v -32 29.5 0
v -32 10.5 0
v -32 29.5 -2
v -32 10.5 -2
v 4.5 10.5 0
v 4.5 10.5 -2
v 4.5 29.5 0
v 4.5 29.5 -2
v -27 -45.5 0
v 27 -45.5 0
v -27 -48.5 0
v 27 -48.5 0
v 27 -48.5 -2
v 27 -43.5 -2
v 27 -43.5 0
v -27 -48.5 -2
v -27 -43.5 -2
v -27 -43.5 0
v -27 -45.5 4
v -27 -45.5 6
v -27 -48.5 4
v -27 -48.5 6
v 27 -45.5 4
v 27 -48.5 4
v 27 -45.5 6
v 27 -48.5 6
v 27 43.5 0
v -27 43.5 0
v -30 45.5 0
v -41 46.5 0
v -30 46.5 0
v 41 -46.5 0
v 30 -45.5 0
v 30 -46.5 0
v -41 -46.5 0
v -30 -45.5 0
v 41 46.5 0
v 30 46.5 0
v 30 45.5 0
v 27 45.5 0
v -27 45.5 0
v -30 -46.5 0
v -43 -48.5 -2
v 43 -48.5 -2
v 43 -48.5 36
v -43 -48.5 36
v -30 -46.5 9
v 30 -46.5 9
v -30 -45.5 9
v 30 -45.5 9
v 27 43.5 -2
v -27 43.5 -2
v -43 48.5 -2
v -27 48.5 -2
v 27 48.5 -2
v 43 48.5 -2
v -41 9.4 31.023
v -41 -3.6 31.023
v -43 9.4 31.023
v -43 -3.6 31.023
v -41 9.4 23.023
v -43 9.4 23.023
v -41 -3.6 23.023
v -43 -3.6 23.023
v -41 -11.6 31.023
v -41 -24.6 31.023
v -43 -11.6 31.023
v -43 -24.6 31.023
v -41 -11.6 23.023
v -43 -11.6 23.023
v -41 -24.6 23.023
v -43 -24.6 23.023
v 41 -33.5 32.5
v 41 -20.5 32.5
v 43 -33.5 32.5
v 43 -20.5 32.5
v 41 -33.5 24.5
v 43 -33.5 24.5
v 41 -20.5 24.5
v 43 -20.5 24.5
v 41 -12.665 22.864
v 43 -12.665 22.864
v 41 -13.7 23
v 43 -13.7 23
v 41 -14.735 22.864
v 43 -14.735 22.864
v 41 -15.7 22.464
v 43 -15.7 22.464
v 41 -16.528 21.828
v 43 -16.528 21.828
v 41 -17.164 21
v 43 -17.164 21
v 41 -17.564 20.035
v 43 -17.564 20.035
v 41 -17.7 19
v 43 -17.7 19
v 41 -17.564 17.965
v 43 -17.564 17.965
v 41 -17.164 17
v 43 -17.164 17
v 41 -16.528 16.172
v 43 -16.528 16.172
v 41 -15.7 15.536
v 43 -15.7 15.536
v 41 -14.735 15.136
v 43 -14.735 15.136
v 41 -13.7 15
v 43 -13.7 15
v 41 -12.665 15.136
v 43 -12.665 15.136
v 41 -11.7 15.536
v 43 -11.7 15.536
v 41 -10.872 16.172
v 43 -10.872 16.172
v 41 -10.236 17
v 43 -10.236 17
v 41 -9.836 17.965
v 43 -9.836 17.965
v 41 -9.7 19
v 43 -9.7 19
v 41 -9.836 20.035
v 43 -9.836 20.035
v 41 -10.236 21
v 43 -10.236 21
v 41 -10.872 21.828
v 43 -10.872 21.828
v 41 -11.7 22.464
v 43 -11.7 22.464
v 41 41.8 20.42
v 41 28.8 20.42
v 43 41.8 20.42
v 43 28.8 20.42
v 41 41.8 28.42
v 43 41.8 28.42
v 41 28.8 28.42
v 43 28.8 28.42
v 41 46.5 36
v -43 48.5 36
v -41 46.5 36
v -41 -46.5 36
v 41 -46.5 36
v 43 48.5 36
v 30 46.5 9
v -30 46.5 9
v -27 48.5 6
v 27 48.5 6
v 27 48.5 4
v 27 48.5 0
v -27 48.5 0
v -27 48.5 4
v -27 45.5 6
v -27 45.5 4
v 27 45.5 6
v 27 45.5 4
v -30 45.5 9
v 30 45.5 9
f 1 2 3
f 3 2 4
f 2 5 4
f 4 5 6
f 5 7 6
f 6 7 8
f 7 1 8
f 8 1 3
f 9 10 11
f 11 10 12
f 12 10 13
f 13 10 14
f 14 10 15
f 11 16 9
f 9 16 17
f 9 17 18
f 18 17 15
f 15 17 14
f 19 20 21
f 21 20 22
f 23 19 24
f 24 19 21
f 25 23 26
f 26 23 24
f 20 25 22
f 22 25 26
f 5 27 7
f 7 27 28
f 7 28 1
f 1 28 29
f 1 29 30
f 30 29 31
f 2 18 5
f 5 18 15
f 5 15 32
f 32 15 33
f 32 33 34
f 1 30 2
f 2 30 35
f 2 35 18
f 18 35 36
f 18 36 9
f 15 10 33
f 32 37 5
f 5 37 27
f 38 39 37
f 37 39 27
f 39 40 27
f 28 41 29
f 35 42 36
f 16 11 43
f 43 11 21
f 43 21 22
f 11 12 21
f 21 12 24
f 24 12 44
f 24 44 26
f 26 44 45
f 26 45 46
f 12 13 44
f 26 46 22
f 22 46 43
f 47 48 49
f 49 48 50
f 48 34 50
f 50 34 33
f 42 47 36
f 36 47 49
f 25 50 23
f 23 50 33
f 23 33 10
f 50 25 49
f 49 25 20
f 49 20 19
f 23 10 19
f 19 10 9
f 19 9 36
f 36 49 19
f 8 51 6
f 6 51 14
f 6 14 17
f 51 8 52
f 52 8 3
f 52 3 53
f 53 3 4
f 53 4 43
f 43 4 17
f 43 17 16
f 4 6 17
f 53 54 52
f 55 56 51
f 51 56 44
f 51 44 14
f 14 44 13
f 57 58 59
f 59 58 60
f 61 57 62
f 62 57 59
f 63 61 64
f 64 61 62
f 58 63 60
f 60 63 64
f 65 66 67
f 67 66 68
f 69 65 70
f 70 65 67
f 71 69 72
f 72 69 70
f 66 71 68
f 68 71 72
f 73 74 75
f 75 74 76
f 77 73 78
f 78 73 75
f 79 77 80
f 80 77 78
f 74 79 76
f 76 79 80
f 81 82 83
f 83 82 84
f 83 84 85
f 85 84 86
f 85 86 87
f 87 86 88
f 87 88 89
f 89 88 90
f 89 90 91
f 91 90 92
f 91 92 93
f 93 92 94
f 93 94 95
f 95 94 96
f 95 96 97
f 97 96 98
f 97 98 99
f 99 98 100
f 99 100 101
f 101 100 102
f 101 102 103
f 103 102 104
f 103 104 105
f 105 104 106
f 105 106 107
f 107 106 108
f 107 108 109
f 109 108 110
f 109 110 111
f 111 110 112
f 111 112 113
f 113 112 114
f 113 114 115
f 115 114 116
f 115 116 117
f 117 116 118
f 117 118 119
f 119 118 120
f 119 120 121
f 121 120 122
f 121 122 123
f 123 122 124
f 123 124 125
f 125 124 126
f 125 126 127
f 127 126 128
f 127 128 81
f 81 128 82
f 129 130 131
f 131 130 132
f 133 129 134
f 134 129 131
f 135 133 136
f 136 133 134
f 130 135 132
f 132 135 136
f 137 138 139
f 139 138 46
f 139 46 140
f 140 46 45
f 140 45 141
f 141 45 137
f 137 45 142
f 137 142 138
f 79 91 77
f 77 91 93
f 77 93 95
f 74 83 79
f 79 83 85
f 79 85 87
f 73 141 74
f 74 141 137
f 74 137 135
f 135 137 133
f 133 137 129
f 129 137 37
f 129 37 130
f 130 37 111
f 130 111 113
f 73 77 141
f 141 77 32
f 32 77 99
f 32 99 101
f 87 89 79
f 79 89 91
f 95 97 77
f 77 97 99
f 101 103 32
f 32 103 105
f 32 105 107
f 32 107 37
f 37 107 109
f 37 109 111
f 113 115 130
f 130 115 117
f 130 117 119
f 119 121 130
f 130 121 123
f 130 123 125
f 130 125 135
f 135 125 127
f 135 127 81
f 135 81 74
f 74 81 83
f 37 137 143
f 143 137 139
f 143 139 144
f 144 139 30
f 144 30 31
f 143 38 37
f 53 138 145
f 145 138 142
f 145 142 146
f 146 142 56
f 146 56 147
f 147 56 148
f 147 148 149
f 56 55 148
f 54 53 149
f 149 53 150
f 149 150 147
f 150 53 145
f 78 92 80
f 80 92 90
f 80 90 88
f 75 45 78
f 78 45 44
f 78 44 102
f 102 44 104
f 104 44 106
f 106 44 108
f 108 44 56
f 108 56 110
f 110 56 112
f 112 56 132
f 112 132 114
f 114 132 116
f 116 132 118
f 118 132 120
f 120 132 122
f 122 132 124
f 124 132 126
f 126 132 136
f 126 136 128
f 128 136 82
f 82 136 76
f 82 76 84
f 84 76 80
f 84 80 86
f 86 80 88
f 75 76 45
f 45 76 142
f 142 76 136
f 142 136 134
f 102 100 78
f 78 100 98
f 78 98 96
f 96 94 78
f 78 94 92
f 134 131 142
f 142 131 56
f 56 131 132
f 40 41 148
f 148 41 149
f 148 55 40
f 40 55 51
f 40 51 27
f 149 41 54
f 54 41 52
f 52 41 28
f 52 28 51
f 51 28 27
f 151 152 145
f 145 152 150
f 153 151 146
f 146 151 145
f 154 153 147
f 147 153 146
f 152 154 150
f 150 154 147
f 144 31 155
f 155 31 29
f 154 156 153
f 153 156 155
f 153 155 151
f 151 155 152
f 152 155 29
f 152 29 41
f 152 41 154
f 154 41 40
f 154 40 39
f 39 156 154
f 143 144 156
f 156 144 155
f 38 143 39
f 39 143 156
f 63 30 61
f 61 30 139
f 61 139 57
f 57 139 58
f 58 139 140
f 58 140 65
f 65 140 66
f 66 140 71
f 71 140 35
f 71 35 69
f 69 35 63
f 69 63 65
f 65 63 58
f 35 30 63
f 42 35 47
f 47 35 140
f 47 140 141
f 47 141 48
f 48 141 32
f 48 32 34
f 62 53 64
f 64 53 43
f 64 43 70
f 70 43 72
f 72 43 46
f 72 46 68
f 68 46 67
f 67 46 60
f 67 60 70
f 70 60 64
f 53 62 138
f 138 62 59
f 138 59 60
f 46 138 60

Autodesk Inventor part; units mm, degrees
ref_plane "YZ Plane" through (0, 0, 0) normal (1, 0, 0) x (0, 1, 0)
ref_plane "XZ Plane" through (0, 0, 0) normal (0, 1, 0) x (-1, 0, 0)
ref_plane "XY Plane" through (0, 0, 0) normal (0, 0, 1) x (1, 0, 0)
sketch "Sketch1" plane through (0, 0, 0) normal (0, 0, 1) x (1, 0, 0)
  line L0 (-41, -46.5) -> (41, -46.5)
  line L1 (41, -46.5) -> (41, 46.5)
  line L2 (41, 46.5) -> (-41, 46.5)
  line L3 (-41, 46.5) -> (-41, -46.5)
  line L4 (-41, -46.5) -> (41, 46.5) construction
  line L5 (41, -46.5) -> (-41, 46.5) construction
  line L6 (43, 48.5) -> (43, -48.5)
  line L7 (43, -48.5) -> (-43, -48.5)
  line L8 (-43, -48.5) -> (-43, 48.5)
  line L9 (-43, 48.5) -> (43, 48.5)
  point P0 (0, 0)
  dimension "d0" = 93
  dimension "d1" = 82
  dimension "d2" = 2
extrude "Extrusion1" add sketch "Sketch1" along normal blind 40
sketch "Sketch2" plane through (0, 0, 0) normal (0, 0, -1) x (-1, 0, 0)
  line L0 (41, 46.5) -> (41, -46.5) projected
  line L1 (41, -46.5) -> (-41, -46.5) projected
  line L2 (-41, -46.5) -> (-41, 46.5) projected
  line L3 (-41, 46.5) -> (41, 46.5) projected
  line L4 (-43, 48.5) -> (-43, -48.5) projected
  line L5 (-43, -48.5) -> (43, -48.5) projected
  line L6 (43, -48.5) -> (43, 48.5) projected
  line L7 (43, 48.5) -> (-43, 48.5) projected
  point P0 (0, 0)
extrude "Extrusion2" add sketch "Sketch2" along normal blind 2 contours L0 L1 L2 L3 | L7 L6 L5 L4
sketch "Sketch4" plane through (0, 0, -2) normal (0, 0, -1) x (-1, 0, 0)
  line L0 (41, 46.5) -> (41, -46.5) projected
  line L1 (-41, 46.5) -> (41, 46.5) projected
  line L2 (-41, -46.5) -> (-41, 46.5) projected
  line L3 (41, -46.5) -> (-41, -46.5) projected
  line L4 (0, 46.5) -> (0, 31.5)
  line L5 (41, -46.5) -> (41, 46.5) projected
  line L6 (41, 31.5) -> (37, 31.5)
  line L7 (-41, 46.5) -> (-41, -46.5) projected
  line L8 (-41, 16) -> (-7, 16)
  line L9 (23, -46.5) -> (23, 3.5)
  line L10 (37, 31.5) -> (-10, 31.5)
  line L11 (-10, 31.5) -> (-10, 3.5)
  line L12 (-10, 3.5) -> (37, 3.5)
  line L13 (37, 3.5) -> (37, 31.5)
  point P0 (0, 0)
  dimension "d11" = 15
  dimension "d12" = 4
  dimension "d13" = 34
  dimension "d14" = 50
extrude "Extrusion4" cut sketch "Sketch4" against normal blind 2 contours L13 L12 L11 L10
sketch "Sketch8" plane through (-43, 48.5, 40) normal (0, 1, 0) x (1, 0, 0)
  line L0 (0, 0) -> (0, 42) projected
  line L1 (86, 0) -> (0, 0) projected
  line L2 (86, 42) -> (86, 0) projected
  line L3 (0, 42) -> (86, 42) projected
  line L4 (6, 42) -> (53, 42) projected
  line L5 (43, 42) -> (16, 42)
  line L6 (43, 42) -> (43, 40)
  line L7 (43, 40) -> (43, 36)
  line L8 (43, 36) -> (43, 34)
  line L9 (84, 40) -> (2, 40) projected
  line L10 (16, 42) -> (70, 42)
  line L11 (70, 42) -> (70, 40)
  line L12 (70, 40) -> (16, 40)
  line L13 (16, 40) -> (16, 42)
  line L14 (16, 34) -> (70, 34)
  line L15 (70, 34) -> (70, 36)
  line L16 (70, 36) -> (16, 36)
  line L17 (16, 36) -> (16, 34)
  dimension "d29" = 27
  dimension "d30" = 2
  dimension "d31" = 4
  dimension "d32" = 2
  dimension "d33" = 54
sketch "Sketch9" plane through (-43, 48.5, 40) normal (0, 1, 0) x (1, 0, 0)
  line L0 (70, 42) -> (73, 42)
  line L1 (6, 42) -> (53, 42) projected
  line L2 (16, 42) -> (13, 42)
  line L3 (70, 34) -> (70, 31)
  line L4 (73, 42) -> (13, 42)
  line L5 (13, 42) -> (13, 31)
  line L6 (13, 31) -> (73, 31)
  line L7 (73, 31) -> (73, 42)
  point P0 (43, 40)
  dimension "d34" = 3
  dimension "d35" = 3
  dimension "d36" = 3
extrude "Extrusion8" add sketch "Sketch9" against normal blind 3
extrude "Extrusion9" cut sketch "Sketch8" against normal blind 5 contours L16 L15 L14 L8 | L8 L14 L17 L16 | L3 L6 L9 L13 | L11 L9 L6 L3
sketch "Sketch10" plane through (0, 0, 40) normal (0, 0, 1) x (1, 0, 0)
  line L0 (-41, -46.5) -> (-41, 46.5) projected
  line L1 (-41, 46.5) -> (41, 46.5) projected
  line L2 (41, 46.5) -> (41, -46.5) projected
  line L3 (41, -46.5) -> (-41, -46.5) projected
  line L4 (43, -48.5) -> (43, 48.5) projected
  line L5 (43, 48.5) -> (-43, 48.5) projected
  line L6 (-43, 48.5) -> (-43, -48.5) projected
  line L7 (-43, -48.5) -> (43, -48.5) projected
  point P0 (0, 0)
extrude "Extrusion10" cut sketch "Sketch10" against normal blind 4
sketch "Sketch11" plane through (-43, -48.5, -2) normal (-1, 0, 0) x (0, 0, 1)
  line L0 (2, 95) -> (38, 95) projected
  line L1 (2, 95) -> (2, 2) projected
  line L2 (11, 95) -> (2, 95) projected
  line L3 (2, 95) -> (2, 62.2)
  line L4 (2, 80) -> (2, 52) projected
  line L5 (2, 62.2) -> (21, 62.2)
  circle A0 centre (21, 62.2) radius 4
  line L6 (2, 79) -> (30.5, 79)
  line L7 (30.5, 95) -> (30.5, 83)
  line L8 (30.5, 83) -> (30.5, 72)
  line L9 (30.5, 79) -> (30.5, 72)
  line L10 (26.5, 82) -> (34.5, 82)
  line L11 (34.5, 82) -> (34.5, 69)
  line L12 (34.5, 69) -> (26.5, 69)
  line L13 (26.5, 69) -> (26.5, 82)
  line L14 (26.5, 82) -> (34.5, 69) construction
  line L15 (34.5, 82) -> (26.5, 69) construction
  line L16 (2, 7) -> (26.5, 7)
  line L17 (2, 2) -> (38, 2) projected
  line L18 (26.42, 2) -> (26.42, 13.2)
  line L19 (22.42, 6.7) -> (22.42, 19.7)
  line L20 (22.42, 19.7) -> (30.42, 19.7)
  line L21 (30.42, 19.7) -> (30.42, 6.7)
  line L22 (30.42, 6.7) -> (22.42, 6.7)
  line L23 (22.42, 6.7) -> (30.42, 19.7) construction
  line L24 (22.42, 19.7) -> (30.42, 6.7) construction
  line L25 (2, 2) -> (38, 2) projected
  line L26 (2, 95) -> (2, 2)
  line L27 (2, 2) -> (2, 48.5)
  line L28 (2, 2) -> (2, 95) projected
  line L29 (28, 48.5) -> (2, 48.5)
  circle A1 centre (21, 34.8) radius 4
  line L30 (26.5, 15) -> (34.5, 15)
  line L31 (34.5, 15) -> (34.5, 28)
  line L32 (34.5, 28) -> (26.5, 28)
  line L33 (26.5, 28) -> (26.5, 15)
  line L34 (22.42, 90.3) -> (22.42, 77.3)
  line L35 (22.42, 77.3) -> (30.42, 77.3)
  line L36 (30.42, 77.3) -> (30.42, 90.3)
  line L37 (30.42, 90.3) -> (22.42, 90.3)
  point P0 (30.5, 75.5)
  dimension "d43" = 32.8
  dimension "d44" = 19
  dimension "d45" = 8
  dimension "d48" = 28.5
  dimension "d50" = 12
  dimension "d51" = 11
  dimension "d52" = 8
  dimension "d53" = 13
  dimension "d54" = 24.5
  dimension "d55" = 11.2
  dimension "d56" = 13
  dimension "d57" = 8
extrude "Extrusion11" cut sketch "Sketch11" against normal through all contours L34 L37 L36 L10 L13 L6 | L6 L13 L35 L34 | L13 L10 L36 L6 | L6 L36 L35 L13 | L33 L32 L31 L30 L21 L20 | L20 L21 L30 L33 | A1
sketch "Sketch12" plane through (-43, -48.5, -2) normal (-1, 0, 0) x (0, 0, 1)
  line L0 (38, 0) -> (38, 97) projected
  line L1 (38, 97) -> (0, 97) projected
  line L2 (0, 0) -> (0, 97) projected
  line L3 (38, 0) -> (0, 0) projected
  point P0 (2, 48.5)
extrude "Extrusion12" add sketch "Sketch12" against normal up to surface (2 mm away)
sketch "Sketch13" plane through (-43, -48.5, -2) normal (-1, 0, 0) x (0, 0, 1)
  line L0 (38, 0) -> (38, 97) projected
  line L1 (38, 97) -> (0, 97) projected
  line L2 (38, 0) -> (0, 0) projected
  line L3 (2, 95) -> (38, 95) projected
  line L4 (2, 95) -> (2, 2) projected
  line L5 (2, 2) -> (38, 2) projected
  line L6 (2, 72) -> (29, 72)
  line L7 (29.0235, 95) -> (29.0235, 51.4)
  line L8 (25.0235, 57.9) -> (33.0235, 57.9)
  line L9 (33.0235, 57.9) -> (33.0235, 44.9)
  line L10 (33.0235, 44.9) -> (25.0235, 44.9)
  line L11 (25.0235, 44.9) -> (25.0235, 57.9)
  line L12 (25.0235, 57.9) -> (33.0235, 44.9) construction
  line L13 (33.0235, 57.9) -> (25.0235, 44.9) construction
  line L14 (29.0235, 51.4) -> (29.0235, 30.4)
  line L15 (25.0235, 36.9) -> (33.0235, 36.9)
  line L16 (33.0235, 36.9) -> (33.0235, 23.9)
  line L17 (33.0235, 23.9) -> (25.0235, 23.9)
  line L18 (25.0235, 23.9) -> (25.0235, 36.9)
  line L19 (25.0235, 36.9) -> (33.0235, 23.9) construction
  line L20 (33.0235, 36.9) -> (25.0235, 23.9) construction
  line L21 (0, 0) -> (0, 97) projected
  point P0 (2, 48.5)
  dimension "d60" = 27
  dimension "d61" = 43.6
  dimension "d62" = 8
  dimension "d63" = 13
  dimension "d64" = 21
  dimension "d65" = 8
  dimension "d66" = 13
extrude "Extrusion13" cut sketch "Sketch13" against normal blind 8 contours L15 L16 L17 L18 | L8 L9 L10 L14 L7 | L7 L14 L10 L11 L8
mirror "Mirror3" about plane through (0, 0, 0) normal (0, 1, 0) of "Extrusion8", "Extrusion9"
sketch "Sketch14" plane through (0, 0, -2) normal (0, 0, -1) x (-1, 0, 0)
  line L0 (-27, -48.5) -> (-27, -43.5) projected
  line L1 (-27, -43.5) -> (27, -43.5) projected
  line L2 (27, -43.5) -> (27, -48.5) projected
  line L3 (27, -48.5) -> (43, -48.5) projected
  line L4 (43, -48.5) -> (43, 48.5) projected
  line L5 (43, 48.5) -> (27, 48.5) projected
  line L6 (27, 48.5) -> (27, 43.5) projected
  line L7 (27, 43.5) -> (-27, 43.5) projected
  line L8 (-27, 43.5) -> (-27, 48.5) projected
  line L9 (-27, 48.5) -> (-43, 48.5) projected
  line L10 (-43, 48.5) -> (-43, -48.5) projected
  line L11 (-43, -48.5) -> (-27, -48.5) projected
  line L12 (-41, -46.5) -> (-41, 46.5) projected
  line L13 (-41, 46.5) -> (-30, 46.5) projected
  line L14 (30, 46.5) -> (41, 46.5) projected
  line L15 (-30, 46.5) -> (-30, 45.5) projected
  line L16 (-4.5, 29.5) -> (32, 29.5)
  line L17 (32, 29.5) -> (32, 10.5)
  line L18 (32, 10.5) -> (-4.5, 10.5)
  line L19 (-4.5, 10.5) -> (-4.5, 29.5)
  line L20 (-10, 3.5) -> (-10, 31.5) projected
  line L21 (-10, 31.5) -> (37, 31.5) projected
  line L22 (37, 31.5) -> (37, 3.5) projected
  line L23 (37, 3.5) -> (-10, 3.5) projected
extrude "Extrusion14" add sketch "Sketch14" against normal up to surface (2 mm away) contours L20 L21 L22 L23
properties part number "chest_piece_bottom_2"
